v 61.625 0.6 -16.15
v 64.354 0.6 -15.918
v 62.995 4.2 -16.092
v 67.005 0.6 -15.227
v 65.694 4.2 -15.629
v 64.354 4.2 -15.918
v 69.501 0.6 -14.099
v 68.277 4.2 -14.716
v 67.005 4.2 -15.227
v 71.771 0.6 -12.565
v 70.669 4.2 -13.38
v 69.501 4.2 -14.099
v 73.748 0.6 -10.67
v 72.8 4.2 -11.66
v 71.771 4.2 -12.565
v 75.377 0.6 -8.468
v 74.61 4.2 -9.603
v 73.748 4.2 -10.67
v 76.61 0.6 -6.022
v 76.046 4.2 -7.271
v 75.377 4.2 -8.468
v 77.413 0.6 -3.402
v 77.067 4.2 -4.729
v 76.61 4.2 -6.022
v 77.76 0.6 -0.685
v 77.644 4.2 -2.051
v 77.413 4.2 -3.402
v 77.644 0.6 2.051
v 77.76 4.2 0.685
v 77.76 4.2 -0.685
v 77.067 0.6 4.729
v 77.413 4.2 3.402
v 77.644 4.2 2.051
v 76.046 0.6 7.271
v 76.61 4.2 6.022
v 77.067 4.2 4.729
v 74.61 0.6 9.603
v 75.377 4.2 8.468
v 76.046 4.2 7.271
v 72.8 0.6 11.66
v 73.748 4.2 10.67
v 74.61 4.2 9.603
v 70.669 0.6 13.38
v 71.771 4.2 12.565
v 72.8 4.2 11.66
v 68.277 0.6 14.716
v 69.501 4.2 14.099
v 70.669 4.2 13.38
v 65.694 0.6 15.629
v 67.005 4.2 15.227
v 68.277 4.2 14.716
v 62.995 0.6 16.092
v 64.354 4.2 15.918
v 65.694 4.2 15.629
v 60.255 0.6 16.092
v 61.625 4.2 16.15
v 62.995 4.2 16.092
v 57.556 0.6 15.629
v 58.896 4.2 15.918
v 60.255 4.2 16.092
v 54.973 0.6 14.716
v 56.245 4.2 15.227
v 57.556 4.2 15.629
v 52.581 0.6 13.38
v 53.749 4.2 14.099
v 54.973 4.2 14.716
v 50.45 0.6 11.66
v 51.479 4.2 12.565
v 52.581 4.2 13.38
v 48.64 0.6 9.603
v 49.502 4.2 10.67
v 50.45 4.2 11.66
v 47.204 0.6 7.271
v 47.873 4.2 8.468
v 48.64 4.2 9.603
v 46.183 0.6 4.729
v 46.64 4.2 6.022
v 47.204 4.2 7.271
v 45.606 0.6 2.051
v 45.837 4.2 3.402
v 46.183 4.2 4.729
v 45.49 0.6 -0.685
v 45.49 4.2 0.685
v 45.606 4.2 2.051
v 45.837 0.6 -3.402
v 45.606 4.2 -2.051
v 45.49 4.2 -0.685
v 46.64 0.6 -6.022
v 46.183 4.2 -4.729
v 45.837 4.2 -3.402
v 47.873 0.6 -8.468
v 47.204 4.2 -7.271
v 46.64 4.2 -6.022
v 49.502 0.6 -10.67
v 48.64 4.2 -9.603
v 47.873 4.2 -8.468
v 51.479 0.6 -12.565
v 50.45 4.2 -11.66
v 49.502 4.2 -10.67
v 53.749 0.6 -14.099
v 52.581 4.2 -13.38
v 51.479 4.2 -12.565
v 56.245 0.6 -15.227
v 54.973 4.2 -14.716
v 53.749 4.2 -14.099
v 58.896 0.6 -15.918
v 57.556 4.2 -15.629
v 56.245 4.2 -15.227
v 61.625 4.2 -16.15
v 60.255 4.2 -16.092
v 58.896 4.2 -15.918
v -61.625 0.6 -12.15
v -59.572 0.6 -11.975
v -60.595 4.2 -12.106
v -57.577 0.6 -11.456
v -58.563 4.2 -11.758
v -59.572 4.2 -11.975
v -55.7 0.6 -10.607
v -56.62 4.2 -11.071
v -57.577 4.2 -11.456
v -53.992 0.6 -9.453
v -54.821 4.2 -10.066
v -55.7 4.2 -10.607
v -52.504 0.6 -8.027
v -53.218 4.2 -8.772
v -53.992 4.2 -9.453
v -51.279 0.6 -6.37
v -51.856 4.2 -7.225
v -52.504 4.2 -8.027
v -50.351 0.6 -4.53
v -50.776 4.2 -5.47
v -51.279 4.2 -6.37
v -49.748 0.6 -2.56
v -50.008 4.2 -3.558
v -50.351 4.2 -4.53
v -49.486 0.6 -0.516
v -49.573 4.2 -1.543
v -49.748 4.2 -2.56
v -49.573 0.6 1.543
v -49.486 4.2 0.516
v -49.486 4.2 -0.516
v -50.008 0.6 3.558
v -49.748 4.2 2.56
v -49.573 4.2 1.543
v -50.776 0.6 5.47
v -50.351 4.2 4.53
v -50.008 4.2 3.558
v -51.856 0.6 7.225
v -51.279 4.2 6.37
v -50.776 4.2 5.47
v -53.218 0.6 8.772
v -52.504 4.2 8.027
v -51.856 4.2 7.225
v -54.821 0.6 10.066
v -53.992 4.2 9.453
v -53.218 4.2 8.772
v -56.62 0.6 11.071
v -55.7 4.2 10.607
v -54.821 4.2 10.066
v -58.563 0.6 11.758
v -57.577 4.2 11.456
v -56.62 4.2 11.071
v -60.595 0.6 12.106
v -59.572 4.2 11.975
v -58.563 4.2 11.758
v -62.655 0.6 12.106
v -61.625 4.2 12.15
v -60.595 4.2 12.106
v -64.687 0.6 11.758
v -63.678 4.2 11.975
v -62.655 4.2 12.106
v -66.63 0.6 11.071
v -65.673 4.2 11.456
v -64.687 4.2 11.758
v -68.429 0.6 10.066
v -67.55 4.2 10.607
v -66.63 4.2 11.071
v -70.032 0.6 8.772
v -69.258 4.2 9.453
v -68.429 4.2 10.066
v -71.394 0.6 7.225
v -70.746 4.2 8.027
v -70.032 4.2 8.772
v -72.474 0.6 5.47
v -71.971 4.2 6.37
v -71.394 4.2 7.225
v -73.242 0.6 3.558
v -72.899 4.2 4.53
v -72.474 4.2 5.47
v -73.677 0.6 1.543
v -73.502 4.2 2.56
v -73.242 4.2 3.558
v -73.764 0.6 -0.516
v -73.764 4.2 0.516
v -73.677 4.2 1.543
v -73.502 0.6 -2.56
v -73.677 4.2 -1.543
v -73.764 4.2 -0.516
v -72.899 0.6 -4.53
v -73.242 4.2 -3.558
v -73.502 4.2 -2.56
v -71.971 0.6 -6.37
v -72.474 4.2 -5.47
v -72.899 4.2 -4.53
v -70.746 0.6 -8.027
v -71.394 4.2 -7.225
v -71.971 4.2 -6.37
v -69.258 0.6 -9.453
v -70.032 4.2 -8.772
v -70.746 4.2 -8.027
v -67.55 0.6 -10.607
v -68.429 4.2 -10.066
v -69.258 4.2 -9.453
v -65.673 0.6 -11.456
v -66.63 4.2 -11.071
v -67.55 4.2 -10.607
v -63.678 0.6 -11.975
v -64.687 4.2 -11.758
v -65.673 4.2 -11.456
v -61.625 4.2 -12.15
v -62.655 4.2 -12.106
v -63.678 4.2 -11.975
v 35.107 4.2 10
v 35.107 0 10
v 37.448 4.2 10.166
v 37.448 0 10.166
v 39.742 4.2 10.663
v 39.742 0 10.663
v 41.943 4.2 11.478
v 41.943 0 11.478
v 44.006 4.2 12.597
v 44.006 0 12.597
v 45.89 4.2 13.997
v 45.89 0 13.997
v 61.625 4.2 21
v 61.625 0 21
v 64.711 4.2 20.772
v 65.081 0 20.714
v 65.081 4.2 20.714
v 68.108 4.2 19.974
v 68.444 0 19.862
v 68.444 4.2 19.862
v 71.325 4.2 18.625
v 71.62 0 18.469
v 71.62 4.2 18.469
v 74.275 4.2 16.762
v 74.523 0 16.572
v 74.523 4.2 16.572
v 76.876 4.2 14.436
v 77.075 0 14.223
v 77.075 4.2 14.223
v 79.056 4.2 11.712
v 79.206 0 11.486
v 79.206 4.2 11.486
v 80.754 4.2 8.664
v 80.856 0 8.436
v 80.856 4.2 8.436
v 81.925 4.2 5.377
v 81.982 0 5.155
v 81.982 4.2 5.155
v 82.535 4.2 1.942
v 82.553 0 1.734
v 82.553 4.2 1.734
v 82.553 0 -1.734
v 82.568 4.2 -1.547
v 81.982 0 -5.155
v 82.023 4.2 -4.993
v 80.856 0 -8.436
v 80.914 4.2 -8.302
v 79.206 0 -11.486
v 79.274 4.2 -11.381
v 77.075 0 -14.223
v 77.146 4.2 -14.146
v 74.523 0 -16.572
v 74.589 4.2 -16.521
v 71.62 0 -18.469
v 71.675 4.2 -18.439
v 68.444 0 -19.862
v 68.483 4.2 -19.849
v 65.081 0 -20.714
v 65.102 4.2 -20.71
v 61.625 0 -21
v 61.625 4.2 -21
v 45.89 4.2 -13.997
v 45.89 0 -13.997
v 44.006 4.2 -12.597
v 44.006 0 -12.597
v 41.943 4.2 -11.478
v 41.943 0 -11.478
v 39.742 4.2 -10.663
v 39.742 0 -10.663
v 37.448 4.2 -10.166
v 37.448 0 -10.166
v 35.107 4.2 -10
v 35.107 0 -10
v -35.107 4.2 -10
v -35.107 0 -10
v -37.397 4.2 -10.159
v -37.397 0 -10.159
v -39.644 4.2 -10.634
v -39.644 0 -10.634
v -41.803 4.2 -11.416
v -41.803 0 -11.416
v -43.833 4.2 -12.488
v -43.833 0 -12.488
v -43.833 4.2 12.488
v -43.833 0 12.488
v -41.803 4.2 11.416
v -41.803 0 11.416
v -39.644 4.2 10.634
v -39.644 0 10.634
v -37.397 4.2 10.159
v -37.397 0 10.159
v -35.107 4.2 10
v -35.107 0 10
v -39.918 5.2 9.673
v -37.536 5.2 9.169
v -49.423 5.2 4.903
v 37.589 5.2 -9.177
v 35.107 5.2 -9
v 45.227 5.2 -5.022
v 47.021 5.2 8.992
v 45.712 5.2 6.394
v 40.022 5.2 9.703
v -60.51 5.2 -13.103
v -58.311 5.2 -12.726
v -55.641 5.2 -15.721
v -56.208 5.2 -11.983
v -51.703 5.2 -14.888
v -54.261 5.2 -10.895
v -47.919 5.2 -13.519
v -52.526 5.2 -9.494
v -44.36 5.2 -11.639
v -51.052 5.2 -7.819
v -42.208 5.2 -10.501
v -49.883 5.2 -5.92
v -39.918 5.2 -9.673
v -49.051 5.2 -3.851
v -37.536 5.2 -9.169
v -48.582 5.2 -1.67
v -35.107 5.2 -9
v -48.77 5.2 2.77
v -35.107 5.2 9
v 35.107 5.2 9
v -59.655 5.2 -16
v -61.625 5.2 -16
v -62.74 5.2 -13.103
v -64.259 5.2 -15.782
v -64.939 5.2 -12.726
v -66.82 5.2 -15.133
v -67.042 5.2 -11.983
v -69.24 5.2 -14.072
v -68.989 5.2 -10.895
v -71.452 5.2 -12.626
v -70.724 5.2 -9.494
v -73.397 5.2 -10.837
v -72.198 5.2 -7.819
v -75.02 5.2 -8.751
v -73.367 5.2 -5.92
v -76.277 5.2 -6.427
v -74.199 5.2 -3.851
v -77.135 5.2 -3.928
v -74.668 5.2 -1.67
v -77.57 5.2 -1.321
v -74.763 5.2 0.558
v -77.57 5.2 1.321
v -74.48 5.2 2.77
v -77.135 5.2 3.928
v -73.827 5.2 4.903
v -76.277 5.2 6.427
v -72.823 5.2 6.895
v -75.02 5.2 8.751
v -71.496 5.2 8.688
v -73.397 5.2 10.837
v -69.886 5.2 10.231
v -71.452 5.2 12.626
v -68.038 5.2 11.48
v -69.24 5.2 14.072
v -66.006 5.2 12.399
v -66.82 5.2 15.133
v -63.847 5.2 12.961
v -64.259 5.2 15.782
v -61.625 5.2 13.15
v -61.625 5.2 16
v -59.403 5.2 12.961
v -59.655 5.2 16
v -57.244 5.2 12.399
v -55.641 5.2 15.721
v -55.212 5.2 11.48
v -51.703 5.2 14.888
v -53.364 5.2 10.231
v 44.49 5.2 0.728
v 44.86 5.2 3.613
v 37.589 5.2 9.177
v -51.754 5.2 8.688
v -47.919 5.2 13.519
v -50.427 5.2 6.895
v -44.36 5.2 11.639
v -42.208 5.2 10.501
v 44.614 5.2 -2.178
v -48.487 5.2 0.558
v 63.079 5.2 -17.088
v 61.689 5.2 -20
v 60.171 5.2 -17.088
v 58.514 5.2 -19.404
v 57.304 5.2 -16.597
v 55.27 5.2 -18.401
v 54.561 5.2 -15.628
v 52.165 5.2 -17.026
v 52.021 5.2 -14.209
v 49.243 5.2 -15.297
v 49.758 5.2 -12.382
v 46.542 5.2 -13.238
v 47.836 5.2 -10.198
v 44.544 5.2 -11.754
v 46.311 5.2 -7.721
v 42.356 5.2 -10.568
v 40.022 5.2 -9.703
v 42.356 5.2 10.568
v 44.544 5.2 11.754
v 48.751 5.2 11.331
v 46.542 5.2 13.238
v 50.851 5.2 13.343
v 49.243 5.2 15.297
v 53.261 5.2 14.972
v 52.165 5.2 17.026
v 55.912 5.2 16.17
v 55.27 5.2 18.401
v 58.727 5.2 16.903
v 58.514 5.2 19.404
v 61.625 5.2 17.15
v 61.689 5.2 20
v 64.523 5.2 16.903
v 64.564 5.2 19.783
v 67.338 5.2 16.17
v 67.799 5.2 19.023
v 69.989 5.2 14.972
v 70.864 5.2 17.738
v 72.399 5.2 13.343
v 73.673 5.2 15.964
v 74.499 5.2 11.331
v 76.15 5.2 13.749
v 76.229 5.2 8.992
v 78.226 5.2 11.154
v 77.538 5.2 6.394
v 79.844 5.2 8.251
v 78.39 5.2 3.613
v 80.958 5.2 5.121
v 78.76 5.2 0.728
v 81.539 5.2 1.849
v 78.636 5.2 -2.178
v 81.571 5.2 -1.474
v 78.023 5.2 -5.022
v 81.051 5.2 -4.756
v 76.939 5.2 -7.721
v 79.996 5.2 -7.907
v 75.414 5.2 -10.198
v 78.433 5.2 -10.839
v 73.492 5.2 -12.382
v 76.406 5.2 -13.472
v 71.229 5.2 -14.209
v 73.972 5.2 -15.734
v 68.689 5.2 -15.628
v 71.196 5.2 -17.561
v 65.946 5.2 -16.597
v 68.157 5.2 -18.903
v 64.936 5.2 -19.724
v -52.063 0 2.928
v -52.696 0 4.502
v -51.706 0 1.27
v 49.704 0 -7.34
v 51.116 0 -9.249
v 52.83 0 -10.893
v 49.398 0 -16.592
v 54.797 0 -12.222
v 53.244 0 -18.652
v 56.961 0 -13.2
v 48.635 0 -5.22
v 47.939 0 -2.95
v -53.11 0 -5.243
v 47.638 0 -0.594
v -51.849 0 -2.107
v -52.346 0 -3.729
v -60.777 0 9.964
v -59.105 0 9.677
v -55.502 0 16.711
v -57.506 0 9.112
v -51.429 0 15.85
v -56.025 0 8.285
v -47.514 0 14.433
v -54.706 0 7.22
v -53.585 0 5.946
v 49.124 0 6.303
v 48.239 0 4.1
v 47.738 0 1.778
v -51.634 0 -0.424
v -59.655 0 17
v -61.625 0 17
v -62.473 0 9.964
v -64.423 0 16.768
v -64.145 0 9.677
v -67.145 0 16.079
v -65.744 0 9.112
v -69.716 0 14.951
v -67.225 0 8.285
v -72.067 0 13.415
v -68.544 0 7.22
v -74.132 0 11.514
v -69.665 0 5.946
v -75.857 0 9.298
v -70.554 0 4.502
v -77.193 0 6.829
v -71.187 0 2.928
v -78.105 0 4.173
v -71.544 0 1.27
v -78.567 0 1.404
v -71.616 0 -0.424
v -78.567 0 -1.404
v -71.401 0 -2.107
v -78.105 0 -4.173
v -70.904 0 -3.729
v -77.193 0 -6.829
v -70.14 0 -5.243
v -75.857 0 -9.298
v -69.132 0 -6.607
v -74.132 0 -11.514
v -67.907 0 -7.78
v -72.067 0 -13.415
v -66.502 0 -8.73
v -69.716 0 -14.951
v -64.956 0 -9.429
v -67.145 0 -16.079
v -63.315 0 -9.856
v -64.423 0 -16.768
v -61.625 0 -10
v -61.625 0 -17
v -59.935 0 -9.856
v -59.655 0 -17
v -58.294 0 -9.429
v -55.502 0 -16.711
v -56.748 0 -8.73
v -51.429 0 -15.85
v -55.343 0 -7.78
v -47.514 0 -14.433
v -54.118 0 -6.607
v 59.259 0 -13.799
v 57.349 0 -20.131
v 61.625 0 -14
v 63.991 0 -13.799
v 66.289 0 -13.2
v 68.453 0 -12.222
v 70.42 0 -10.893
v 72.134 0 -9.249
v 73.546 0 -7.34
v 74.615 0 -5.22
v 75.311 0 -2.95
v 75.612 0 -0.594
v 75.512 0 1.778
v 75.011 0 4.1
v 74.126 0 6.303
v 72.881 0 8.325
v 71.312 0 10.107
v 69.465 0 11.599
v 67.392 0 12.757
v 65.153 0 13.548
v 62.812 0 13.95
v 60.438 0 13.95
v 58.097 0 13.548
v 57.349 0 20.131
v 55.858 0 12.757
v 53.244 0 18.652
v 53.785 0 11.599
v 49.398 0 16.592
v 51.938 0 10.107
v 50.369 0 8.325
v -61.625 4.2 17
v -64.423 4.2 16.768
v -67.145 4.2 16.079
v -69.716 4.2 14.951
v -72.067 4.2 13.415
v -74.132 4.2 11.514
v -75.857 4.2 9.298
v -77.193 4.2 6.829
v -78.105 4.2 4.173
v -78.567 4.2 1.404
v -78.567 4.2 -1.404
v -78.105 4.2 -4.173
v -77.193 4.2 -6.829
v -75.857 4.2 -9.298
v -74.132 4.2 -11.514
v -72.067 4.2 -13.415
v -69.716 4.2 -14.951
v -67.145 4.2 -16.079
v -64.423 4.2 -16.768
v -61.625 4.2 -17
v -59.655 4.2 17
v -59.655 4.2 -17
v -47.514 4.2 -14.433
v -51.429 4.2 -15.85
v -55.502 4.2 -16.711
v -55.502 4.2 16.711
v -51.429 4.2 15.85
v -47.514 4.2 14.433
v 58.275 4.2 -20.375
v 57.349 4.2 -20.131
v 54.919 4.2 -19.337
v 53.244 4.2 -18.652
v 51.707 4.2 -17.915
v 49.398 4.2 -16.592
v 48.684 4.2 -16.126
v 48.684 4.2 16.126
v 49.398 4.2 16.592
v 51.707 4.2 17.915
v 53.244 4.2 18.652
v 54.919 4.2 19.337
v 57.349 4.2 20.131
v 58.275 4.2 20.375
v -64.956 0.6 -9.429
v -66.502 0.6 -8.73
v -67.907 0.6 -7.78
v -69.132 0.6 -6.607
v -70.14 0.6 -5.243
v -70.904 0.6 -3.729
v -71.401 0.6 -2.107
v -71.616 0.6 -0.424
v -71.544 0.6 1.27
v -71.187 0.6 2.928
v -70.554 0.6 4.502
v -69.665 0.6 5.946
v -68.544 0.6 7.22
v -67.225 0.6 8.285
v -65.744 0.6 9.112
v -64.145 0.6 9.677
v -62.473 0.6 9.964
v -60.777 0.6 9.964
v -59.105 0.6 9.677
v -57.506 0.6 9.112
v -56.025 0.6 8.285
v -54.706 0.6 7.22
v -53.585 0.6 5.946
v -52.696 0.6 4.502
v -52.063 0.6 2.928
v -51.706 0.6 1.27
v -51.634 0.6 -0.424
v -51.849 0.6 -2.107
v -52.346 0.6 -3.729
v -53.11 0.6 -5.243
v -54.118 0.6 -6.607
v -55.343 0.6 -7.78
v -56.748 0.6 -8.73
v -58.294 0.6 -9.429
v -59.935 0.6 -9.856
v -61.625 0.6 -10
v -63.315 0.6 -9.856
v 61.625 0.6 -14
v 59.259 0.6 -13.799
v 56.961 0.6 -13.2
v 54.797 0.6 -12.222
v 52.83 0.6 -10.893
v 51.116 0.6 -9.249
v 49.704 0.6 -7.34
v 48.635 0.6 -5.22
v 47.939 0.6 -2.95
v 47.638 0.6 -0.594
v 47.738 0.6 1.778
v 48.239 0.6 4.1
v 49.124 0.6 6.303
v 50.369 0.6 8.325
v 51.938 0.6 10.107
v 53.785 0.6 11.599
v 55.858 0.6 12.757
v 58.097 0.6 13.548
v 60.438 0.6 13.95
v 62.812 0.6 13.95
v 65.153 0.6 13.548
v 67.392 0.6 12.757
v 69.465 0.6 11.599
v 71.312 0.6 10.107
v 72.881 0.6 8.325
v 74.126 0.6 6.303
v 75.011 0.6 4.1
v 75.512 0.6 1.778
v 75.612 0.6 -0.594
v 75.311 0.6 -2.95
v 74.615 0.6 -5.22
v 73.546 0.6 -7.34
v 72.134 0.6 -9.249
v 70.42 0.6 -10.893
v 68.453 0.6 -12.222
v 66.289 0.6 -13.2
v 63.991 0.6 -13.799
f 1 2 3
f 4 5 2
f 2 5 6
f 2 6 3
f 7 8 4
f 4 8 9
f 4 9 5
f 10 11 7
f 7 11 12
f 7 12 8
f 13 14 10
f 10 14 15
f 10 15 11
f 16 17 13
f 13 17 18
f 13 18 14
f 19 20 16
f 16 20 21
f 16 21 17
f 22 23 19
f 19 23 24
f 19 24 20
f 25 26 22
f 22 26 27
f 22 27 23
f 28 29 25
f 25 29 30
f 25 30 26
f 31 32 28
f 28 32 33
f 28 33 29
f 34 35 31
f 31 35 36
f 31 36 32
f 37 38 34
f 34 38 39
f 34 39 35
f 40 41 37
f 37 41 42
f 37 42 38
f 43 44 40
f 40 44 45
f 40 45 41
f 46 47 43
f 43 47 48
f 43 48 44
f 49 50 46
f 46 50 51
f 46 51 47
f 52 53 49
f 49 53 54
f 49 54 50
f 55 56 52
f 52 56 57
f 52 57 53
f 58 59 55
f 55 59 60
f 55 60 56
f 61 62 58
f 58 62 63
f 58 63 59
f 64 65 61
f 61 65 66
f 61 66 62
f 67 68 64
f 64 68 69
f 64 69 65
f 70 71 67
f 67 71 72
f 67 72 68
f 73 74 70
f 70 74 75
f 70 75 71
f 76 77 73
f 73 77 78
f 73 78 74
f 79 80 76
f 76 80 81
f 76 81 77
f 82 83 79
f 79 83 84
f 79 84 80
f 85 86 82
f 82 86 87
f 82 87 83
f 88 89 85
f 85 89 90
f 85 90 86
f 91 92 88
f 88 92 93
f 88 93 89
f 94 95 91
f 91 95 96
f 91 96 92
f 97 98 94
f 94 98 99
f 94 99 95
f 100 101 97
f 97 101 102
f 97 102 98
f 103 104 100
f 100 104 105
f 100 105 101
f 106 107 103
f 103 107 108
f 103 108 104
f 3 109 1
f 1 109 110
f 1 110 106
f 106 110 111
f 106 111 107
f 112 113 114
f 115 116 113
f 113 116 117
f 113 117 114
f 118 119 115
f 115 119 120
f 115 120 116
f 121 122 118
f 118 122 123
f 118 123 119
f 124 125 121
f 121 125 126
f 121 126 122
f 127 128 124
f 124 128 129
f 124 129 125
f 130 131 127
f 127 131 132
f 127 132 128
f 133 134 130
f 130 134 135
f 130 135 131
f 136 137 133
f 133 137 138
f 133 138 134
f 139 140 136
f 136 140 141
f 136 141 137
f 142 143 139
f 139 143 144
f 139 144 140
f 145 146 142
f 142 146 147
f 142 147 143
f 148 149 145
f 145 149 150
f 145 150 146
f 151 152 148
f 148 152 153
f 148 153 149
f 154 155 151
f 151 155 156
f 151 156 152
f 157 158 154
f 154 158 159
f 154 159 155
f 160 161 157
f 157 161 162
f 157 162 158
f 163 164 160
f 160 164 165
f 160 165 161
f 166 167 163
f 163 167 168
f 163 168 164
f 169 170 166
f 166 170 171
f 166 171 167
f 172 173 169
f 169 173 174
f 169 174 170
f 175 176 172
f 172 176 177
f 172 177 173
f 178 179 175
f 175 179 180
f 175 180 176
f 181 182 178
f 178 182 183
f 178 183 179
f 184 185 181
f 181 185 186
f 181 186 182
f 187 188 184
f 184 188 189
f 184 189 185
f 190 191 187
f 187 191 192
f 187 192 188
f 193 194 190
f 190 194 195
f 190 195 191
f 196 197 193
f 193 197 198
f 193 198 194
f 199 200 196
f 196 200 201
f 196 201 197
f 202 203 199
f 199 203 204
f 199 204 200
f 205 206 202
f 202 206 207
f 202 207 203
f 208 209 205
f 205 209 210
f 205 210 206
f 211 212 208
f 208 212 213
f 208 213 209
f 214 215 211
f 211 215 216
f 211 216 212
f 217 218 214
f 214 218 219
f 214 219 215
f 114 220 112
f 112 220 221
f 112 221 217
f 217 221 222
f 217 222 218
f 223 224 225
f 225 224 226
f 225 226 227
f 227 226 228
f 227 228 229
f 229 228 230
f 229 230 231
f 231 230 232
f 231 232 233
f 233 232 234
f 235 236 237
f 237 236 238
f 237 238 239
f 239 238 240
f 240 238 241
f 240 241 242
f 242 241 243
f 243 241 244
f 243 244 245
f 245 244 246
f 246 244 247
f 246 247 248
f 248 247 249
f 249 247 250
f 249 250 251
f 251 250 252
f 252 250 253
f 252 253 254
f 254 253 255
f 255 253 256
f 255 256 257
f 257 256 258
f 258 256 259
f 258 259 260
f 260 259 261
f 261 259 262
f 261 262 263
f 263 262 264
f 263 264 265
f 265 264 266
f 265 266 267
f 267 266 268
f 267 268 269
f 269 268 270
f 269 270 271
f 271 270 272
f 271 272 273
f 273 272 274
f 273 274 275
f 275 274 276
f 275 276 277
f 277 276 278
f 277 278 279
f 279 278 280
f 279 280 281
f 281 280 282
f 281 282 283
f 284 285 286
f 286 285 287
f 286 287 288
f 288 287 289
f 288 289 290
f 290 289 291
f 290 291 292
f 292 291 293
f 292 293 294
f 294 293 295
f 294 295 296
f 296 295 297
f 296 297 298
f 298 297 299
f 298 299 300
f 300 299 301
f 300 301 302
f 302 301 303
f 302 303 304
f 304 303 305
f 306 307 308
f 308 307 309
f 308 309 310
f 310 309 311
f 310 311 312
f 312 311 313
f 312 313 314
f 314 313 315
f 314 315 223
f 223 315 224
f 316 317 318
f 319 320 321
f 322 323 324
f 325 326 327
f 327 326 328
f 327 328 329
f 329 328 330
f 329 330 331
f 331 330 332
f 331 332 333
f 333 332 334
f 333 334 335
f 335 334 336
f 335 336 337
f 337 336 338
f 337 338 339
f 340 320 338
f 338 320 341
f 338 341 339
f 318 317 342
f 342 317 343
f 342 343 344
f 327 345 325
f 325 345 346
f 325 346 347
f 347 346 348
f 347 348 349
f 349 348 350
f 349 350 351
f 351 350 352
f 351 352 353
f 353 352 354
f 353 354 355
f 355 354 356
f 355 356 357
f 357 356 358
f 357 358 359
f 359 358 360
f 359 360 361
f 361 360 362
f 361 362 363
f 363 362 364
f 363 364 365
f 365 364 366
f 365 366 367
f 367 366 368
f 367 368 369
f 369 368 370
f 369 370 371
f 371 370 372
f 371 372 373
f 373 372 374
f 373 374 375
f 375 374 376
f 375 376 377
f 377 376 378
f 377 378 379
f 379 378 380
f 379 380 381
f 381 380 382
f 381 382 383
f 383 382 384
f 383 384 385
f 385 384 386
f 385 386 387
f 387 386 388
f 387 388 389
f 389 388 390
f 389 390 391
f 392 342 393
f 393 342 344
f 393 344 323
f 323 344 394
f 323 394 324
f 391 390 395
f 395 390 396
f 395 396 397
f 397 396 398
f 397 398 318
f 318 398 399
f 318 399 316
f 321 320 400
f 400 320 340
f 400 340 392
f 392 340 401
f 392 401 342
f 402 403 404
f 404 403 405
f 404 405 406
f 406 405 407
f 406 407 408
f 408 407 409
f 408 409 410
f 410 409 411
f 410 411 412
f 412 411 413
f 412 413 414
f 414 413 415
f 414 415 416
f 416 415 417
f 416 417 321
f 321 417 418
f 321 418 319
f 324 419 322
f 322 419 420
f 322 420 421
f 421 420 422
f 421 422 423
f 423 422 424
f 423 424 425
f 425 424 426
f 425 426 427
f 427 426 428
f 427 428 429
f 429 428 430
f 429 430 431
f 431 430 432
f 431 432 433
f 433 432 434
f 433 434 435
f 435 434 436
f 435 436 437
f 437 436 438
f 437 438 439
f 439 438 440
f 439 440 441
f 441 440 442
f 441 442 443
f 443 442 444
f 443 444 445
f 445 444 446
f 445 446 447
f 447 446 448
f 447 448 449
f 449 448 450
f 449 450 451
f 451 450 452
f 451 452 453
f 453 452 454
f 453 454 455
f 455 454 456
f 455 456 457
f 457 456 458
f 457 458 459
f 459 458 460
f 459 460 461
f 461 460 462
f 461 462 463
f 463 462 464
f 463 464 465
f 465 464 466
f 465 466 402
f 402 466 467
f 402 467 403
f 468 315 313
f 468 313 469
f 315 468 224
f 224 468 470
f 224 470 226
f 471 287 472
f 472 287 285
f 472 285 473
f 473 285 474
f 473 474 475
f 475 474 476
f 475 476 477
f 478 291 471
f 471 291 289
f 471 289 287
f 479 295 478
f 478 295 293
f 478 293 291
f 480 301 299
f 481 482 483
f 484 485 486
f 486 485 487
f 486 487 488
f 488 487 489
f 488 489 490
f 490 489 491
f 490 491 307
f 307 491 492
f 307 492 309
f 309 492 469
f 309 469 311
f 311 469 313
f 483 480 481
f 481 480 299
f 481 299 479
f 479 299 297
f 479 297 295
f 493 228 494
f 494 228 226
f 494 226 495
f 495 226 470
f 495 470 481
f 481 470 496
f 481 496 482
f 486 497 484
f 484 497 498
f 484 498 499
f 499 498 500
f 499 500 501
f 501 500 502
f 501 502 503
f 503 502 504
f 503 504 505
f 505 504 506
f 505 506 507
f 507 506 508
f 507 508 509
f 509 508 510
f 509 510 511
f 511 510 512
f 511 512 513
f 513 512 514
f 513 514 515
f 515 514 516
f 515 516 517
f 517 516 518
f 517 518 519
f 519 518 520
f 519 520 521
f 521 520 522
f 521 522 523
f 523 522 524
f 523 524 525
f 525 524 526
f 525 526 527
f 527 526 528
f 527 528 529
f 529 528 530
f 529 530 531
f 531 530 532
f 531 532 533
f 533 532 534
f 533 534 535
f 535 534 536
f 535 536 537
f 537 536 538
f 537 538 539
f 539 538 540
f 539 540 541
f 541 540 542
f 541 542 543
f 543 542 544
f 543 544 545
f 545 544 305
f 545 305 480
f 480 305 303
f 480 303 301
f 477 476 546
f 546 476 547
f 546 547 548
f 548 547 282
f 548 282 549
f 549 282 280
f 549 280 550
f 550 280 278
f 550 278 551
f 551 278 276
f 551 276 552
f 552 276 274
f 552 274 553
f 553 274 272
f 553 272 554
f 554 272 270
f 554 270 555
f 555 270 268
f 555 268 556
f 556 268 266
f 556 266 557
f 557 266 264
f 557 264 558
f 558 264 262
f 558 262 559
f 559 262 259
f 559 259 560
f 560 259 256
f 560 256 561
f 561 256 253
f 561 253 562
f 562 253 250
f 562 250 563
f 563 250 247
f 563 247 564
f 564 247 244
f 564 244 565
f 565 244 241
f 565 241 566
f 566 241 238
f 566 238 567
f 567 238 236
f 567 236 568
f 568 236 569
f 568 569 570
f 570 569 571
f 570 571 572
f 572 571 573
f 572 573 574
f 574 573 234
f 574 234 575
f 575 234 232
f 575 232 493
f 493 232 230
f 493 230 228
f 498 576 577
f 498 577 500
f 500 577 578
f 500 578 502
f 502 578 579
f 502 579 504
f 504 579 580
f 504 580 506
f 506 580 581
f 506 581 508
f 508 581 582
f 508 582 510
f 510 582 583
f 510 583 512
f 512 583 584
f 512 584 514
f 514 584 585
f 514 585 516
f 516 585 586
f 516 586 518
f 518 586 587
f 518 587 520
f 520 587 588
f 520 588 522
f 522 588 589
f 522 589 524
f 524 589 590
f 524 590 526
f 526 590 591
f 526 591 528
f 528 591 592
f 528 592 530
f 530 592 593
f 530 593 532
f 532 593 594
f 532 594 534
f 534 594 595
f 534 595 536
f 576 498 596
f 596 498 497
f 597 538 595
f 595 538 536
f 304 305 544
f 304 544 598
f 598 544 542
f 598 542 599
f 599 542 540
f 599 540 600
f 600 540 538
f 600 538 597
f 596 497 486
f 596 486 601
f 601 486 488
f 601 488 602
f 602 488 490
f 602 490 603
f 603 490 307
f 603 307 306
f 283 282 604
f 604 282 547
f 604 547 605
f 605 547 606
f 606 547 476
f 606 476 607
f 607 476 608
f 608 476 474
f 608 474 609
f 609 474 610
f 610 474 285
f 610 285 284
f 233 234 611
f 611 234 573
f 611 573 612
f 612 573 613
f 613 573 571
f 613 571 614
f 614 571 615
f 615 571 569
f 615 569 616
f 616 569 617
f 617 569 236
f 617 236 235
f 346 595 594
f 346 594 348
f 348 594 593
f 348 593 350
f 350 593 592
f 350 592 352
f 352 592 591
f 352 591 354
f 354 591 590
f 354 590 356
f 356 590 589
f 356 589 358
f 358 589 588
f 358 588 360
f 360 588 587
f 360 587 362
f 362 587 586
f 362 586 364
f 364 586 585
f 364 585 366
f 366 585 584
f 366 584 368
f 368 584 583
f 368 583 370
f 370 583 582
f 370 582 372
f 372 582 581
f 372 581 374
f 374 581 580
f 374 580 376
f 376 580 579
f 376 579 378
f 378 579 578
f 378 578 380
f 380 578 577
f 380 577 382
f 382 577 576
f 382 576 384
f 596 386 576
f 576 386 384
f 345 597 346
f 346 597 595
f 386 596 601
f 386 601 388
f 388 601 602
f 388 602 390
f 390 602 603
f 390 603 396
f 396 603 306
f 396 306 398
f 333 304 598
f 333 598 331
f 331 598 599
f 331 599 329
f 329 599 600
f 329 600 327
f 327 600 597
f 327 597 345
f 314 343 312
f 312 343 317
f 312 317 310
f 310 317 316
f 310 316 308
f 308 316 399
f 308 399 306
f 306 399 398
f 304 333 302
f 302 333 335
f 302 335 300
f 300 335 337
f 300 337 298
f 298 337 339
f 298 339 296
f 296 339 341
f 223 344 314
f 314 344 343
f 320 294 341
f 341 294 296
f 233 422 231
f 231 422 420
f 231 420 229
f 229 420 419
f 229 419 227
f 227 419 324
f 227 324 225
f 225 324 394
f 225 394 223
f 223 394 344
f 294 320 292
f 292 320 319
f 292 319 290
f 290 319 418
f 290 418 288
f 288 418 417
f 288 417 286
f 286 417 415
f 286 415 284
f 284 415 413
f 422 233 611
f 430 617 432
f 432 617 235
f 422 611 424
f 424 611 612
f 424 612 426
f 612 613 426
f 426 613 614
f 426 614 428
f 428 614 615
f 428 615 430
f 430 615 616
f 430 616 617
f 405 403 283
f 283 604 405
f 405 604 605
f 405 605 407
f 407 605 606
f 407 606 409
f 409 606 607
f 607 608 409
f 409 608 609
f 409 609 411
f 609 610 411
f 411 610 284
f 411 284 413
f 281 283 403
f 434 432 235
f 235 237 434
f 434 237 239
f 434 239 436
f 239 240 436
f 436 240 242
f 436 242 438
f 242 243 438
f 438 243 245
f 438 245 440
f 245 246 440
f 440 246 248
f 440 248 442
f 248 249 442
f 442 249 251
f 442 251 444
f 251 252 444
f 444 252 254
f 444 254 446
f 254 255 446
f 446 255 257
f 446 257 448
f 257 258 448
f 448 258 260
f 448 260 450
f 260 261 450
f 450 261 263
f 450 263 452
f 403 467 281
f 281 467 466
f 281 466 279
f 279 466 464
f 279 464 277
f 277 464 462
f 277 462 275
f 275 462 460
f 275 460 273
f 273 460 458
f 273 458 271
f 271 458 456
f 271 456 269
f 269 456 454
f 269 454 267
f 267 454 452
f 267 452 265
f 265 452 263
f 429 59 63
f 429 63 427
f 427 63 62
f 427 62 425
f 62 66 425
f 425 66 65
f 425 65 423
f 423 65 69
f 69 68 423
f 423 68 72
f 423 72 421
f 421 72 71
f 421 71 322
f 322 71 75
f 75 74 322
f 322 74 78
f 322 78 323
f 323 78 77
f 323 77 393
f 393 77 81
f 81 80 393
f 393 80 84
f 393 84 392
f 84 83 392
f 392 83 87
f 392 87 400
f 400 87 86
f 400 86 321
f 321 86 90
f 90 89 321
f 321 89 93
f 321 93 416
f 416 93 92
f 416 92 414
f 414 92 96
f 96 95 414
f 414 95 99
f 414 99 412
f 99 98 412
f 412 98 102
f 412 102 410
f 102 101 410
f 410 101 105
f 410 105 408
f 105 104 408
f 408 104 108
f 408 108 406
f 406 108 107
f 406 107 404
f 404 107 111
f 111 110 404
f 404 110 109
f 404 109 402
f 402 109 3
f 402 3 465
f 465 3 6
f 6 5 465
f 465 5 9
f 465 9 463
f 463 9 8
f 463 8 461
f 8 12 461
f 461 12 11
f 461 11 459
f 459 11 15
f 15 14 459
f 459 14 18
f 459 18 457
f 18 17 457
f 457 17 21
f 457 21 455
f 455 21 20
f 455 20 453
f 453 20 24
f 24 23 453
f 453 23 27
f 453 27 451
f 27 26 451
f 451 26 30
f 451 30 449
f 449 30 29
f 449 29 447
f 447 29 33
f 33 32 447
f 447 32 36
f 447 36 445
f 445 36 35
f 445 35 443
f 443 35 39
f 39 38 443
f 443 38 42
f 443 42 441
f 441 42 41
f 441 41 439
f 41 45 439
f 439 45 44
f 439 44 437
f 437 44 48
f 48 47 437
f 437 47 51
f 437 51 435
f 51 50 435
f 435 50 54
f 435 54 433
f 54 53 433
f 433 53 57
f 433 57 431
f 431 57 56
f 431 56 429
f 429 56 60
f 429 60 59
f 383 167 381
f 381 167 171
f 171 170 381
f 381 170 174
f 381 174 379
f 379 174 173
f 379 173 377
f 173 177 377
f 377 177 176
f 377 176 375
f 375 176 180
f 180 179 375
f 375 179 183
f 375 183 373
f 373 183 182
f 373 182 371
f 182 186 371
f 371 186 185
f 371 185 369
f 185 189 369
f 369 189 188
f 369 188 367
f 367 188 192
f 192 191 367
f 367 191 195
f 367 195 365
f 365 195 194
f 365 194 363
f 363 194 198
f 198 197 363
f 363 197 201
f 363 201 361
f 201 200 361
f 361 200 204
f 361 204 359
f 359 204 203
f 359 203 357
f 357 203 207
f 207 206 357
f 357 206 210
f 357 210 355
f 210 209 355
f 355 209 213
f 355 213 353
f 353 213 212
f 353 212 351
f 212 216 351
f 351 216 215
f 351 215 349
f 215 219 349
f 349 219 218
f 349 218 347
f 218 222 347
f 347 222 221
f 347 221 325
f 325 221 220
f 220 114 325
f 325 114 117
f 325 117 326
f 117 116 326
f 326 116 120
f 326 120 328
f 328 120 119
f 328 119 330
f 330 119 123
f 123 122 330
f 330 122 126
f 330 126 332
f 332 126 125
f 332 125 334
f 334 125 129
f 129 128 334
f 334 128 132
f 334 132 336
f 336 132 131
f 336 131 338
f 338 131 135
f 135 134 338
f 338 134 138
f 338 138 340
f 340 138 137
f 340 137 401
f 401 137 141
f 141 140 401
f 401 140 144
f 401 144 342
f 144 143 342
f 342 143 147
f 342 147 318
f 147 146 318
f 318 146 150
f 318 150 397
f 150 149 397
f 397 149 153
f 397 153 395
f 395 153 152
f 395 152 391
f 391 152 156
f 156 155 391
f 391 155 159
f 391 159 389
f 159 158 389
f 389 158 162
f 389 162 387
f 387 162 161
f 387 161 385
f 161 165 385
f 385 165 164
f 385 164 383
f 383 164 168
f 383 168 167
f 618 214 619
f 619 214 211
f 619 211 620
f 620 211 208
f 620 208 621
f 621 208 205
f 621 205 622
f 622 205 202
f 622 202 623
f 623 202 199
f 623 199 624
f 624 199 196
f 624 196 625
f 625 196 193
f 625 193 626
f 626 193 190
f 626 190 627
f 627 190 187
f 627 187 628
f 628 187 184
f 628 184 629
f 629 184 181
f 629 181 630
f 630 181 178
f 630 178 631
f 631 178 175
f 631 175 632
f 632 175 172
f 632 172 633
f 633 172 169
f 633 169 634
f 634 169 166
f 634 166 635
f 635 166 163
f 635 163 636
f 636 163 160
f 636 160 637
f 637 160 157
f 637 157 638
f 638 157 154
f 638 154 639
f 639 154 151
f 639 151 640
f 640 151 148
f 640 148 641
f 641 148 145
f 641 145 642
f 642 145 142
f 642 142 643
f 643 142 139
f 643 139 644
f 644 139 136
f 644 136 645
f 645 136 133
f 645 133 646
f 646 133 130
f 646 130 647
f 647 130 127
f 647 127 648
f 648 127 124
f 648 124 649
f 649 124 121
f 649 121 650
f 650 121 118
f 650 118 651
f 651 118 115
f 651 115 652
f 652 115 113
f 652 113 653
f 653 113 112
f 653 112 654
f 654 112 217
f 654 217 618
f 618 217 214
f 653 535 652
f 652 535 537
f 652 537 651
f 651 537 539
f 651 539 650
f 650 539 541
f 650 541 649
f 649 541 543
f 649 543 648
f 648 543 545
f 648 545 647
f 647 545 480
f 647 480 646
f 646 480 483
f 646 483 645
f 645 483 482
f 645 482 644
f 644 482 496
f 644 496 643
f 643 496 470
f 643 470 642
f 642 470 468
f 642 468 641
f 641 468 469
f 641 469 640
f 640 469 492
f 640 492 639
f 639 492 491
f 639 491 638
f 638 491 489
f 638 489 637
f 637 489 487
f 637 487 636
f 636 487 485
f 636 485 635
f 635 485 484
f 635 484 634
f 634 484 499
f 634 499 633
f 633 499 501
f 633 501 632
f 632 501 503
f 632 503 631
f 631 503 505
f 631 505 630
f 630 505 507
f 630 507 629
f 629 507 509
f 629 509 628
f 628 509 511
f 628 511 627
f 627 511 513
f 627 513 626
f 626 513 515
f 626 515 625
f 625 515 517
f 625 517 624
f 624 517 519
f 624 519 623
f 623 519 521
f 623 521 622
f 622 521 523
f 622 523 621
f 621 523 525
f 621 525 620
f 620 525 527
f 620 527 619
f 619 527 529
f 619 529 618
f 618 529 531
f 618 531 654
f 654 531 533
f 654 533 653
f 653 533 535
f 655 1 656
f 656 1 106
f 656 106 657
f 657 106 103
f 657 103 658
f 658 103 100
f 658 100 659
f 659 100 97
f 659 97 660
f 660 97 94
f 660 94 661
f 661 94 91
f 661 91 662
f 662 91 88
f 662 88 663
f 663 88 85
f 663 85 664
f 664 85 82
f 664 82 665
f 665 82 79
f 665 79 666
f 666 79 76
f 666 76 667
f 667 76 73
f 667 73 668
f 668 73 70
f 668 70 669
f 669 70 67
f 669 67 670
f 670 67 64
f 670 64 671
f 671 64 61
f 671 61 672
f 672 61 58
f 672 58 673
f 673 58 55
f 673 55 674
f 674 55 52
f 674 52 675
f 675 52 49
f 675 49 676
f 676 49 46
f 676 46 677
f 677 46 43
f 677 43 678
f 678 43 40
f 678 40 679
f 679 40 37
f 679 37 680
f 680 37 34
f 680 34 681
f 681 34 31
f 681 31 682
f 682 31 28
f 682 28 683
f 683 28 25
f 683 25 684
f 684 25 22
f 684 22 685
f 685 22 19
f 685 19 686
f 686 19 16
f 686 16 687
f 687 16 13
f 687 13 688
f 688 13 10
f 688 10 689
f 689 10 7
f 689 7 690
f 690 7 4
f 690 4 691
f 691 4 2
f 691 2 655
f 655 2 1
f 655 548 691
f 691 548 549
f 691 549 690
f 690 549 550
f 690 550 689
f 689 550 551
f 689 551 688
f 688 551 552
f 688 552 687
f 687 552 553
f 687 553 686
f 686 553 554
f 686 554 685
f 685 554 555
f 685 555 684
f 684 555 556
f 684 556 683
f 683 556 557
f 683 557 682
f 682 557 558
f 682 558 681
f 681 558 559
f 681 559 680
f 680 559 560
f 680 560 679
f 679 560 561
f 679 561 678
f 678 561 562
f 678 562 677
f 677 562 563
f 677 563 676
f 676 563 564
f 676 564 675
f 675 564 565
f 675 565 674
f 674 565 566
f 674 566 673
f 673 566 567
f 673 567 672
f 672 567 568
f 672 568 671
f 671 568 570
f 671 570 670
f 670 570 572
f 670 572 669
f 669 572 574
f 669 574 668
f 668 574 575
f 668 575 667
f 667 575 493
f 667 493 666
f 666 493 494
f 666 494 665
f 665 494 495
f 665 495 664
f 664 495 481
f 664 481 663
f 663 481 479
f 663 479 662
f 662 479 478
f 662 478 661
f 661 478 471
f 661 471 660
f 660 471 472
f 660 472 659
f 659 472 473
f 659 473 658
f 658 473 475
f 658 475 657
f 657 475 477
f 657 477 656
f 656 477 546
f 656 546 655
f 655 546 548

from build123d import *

# Parameters (mm, degrees)
SKETCH1_R           = 12.15
SKETCH1_R_2         = 16.15
BOSS_EXTRUDE1_DEPTH = 5.2
CUT_EXTRUDE1_DEPTH  = 86.410366028
FILLET1_R           = 30
CHAMFER1_SIZE       = 1
SKETCH2_R           = 14.75534968
SKETCH2_R_2         = 10
SKETCH2_R_3         = 19.025242353
SKETCH2_R_4         = 14
BOSS_EXTRUDE2_DEPTH = 0.6


with BuildPart() as part:
    # Sketch1 → Boss-Extrude1 (new body)
    with BuildSketch(Plane(origin=(0, 0, 0), x_dir=(1, 0, 0), z_dir=(0, 1, 0))):
        with BuildLine():
            Line((50.6952797, -21), (61.625, -21))
            ThreePointArc((61.625, -21), (82.625, 0), (61.625, 21))
            Line((61.625, 21), (50.6952797, 21))
            ThreePointArc((50.6952797, 21), (44.646090821, 13.026866227), (35.106613419, 10))
            Line((35.106613419, 10), (-35.106613419, 10))
            ThreePointArc((-35.106613419, 10), (-44.646090821, 13.026866227), (-50.6952797, 21))
            Line((-50.6952797, 21), (-61.625, 21))
            ThreePointArc((-61.625, 21), (-82.625, 0), (-61.625, -21))
            Line((-61.625, -21), (-50.6952797, -21))
            ThreePointArc((-50.6952797, -21), (-44.646090821, -13.026866227), (-35.106613419, -10))
            Line((-35.106613419, -10), (35.106613419, -10))
            ThreePointArc((35.106613419, -10), (44.646090821, -13.026866227), (50.6952797, -21))
        make_face()
        with Locations(Location((-61.625, 0, 0), (0, 0, 270))):
            Circle(SKETCH1_R, mode=Mode.SUBTRACT)
        with Locations(Location((61.625, 0, 0), (0, 0, 270))):
            Circle(SKETCH1_R_2, mode=Mode.SUBTRACT)
    extrude(amount=BOSS_EXTRUDE1_DEPTH)

    # Sketch4 → Cut-Extrude1 (cut, through all)
    with BuildSketch(Plane(origin=(0, 5.2, 0), x_dir=(1, 0, 0), z_dir=(0, 1, 0))):
        with BuildLine():
            Line((-61.625, 17), (-38.970543198, 17))
            Line((-38.970543198, 17), (-43.407950199, 33.342917206))
            Line((-43.407950199, 33.342917206), (-92.984497382, 23.090976894))
            Line((-92.984497382, 23.090976894), (-92.984497382, -9.501012459))
            Line((-92.984497382, -9.501012459), (-86.710921967, -27.097626428))
            Line((-86.710921967, -27.097626428), (-50.736883487, -31.973137348))
            Line((-50.736883487, -31.973137348), (-37.899444956, -29.584754809))
            Line((-37.899444956, -29.584754809), (-38.970543198, -17))
            Line((-38.970543198, -17), (-61.625, -17))
            ThreePointArc((-61.625, -17), (-78.625, 0), (-61.625, 17))
        make_face()
    extrude(amount=-CUT_EXTRUDE1_DEPTH, mode=Mode.SUBTRACT)

    # Fillet1
    # the kernel refuses this fillet: 30 mm, written as the material it takes off along each edge
    with BuildSketch(Plane(origin=(50.6952797, -27.324300751, -21), x_dir=(-0.5657553203908781, 0, 0.824573172889717), z_dir=(0, 1, 0))) as fillet1_piece_1:
        with BuildLine():
            CenterArc((16.192535549, 28.995119506), FILLET1_R, 221.766169003, 33.362358022)
            Line((-6.18354741, 9.012354147), (-6.631069069, 8.61269884))
            ThreePointArc((-6.631069069, 8.61269884), (-3.586517609, 4.166723881), (-0.494743904, -0.339453192))
            Line((-0.494743904, -0.339453192), (0.153990967, -0.57990239))
            ThreePointArc((0.153990967, -0.57990239), (4.246493598, -0.04578326), (8.338996228, -0.57990239))
            Line((8.338996228, -0.57990239), (8.492987195, 0))
        make_face()
    extrude(amount=59.848601502, mode=Mode.SUBTRACT)
    with BuildSketch(Plane(origin=(50.6952797, -27.324300751, 21), x_dir=(1, 0, 0), z_dir=(0, 1, 0))) as fillet1_piece_2:
        with BuildLine():
            CenterArc((14.747584551, 29.756073541), FILLET1_R, 229.326231532, 33.362358022)
            Line((-4.804952692, 7.003089399), (-5.196003436, 6.548029716))
            ThreePointArc((-5.196003436, 6.548029716), (-2.440227994, 3.475642576), (-0.565293163, -0.201106042))
            Line((-0.565293163, -0.201106042), (0, -0.6))
            ThreePointArc((0, -0.6), (5.46486015, -0.6), (10.853363015, -0.595121471))
            Line((10.853363015, -0.595121471), (10.9297203, 0))
        make_face()
    extrude(amount=59.848601502, mode=Mode.SUBTRACT)
    with BuildSketch(Plane(origin=(-48.621069029, 32.785704602, -17), x_dir=(-1, 0, 0), z_dir=(0, -1, 0))) as fillet1_piece_3:
        with BuildLine():
            CenterArc((11.034281841, -30), FILLET1_R, 90, 31.830687787)
            Line((-4.788045906, -4.511690039), (-5.104492461, -4.00192384))
            ThreePointArc((-5.104492461, -4.00192384), (-2.578998673, -2.059538928), (-0.490075881, 0.34615839))
            Line((-0.490075881, 0.34615839), (0, 0.6))
            Line((0, 0.6), (11.034281841, 0.6))
            Line((11.034281841, 0.6), (11.034281841, 0))
        make_face()
    extrude(amount=60.371409204, mode=Mode.SUBTRACT)
    with BuildSketch(Plane(origin=(-48.621069029, 32.785704602, 17), x_dir=(0.7277982616759969, 0, -0.6857912877117915), z_dir=(0, -1, 0))) as fillet1_piece_4:
        with BuildLine():
            CenterArc((12.543007489, -29.401162203), FILLET1_R, 101.467181472, 31.830687787)
            Line((-8.030731143, -7.567214353), (-8.442205915, -7.130535396))
            Line((-8.442205915, -7.130535396), (-0.411474773, 0.436678957))
            Line((-0.411474773, 0.436678957), (0.119283966, 0.588023244))
            ThreePointArc((0.119283966, 0.588023244), (3.289404605, 0.269725969), (6.459525243, 0.588023244))
            Line((6.459525243, 0.588023244), (6.578809209, 0))
        make_face()
    extrude(amount=60.371409204, mode=Mode.SUBTRACT)

    # Chamfer1
    # the kernel refuses this chamfer: 1 mm, written as the material it takes off along each edge
    with BuildSketch(Plane(origin=(61.625, 5.2, 0), x_dir=(-0.12235070165055927, 0, 0.9924869297908239), z_dir=(-0.9924869297908239, 0, -0.12235070165055927))) as chamfer1_piece_1:
        Polygon((21 - CHAMFER1_SIZE, 0), (21, -CHAMFER1_SIZE), (21, 0), align=None)
    revolve(axis=Axis((61.625, 5.2, 0), (0, 1, 0)), revolution_arc=194.055575488, mode=Mode.SUBTRACT)
    with BuildSketch(Plane(origin=(35.106613419, 5.2, -26.545750746), x_dir=(0.6517512414299695, 0, 0.7584328047325575), z_dir=(0.7584328047325575, 0, -0.6517512414299695))) as chamfer1_piece_2:
        Polygon((16.545750746 + CHAMFER1_SIZE, 0), (16.545750746, CHAMFER1_SIZE), (16.545750746, 0), align=None)
    revolve(axis=Axis((35.106613419, 5.2, -26.545750746), (0, -1, 0)), revolution_arc=40.673768468, mode=Mode.SUBTRACT)
    with BuildSketch(Plane(origin=(35.106613419, 5.2, -10), x_dir=(0, 0, 1), z_dir=(-1, 0, 0))) as chamfer1_piece_3:
        Polygon((CHAMFER1_SIZE, 0), (0, -CHAMFER1_SIZE), (0, 0), align=None)
    extrude(amount=70.213226838, mode=Mode.SUBTRACT)
    with BuildSketch(Plane(origin=(-61.625, 5.2, 0), x_dir=(0, 0, 1), z_dir=(1, 0, 0))) as chamfer1_piece_4:
        Polygon((17 - CHAMFER1_SIZE, 0), (17, CHAMFER1_SIZE), (17, 0), align=None)
    revolve(axis=Axis((-61.625, 5.2, 0), (0, -1, 0)), revolution_arc=180, mode=Mode.SUBTRACT)
    with BuildSketch(Plane(origin=(-61.625, 5.2, -17), x_dir=(0, 0, 1), z_dir=(1, 0, 0)), Plane(origin=(-59.65535087, 5.2, 17), x_dir=(0, 0, -1), z_dir=(-1, 0, 0))) as chamfer1_piece_5:
        Polygon((CHAMFER1_SIZE, 0), (0, CHAMFER1_SIZE), (0, 0), align=None)
    extrude(amount=1.96964913, mode=Mode.SUBTRACT)
    with BuildSketch(Plane(origin=(-35.106613419, 5.2, 26.545750746), x_dir=(-0.5274109249013418, 0, -0.8496103320315208), z_dir=(-0.8496103320315208, 0, 0.5274109249013418))) as chamfer1_piece_6:
        Polygon((16.545750746, CHAMFER1_SIZE), (16.545750746 + CHAMFER1_SIZE, 0), (16.545750746, 0), align=None)
    revolve(axis=Axis((-35.106613419, 5.2, 26.545750746), (0, -1, 0)), revolution_arc=31.830687787, mode=Mode.SUBTRACT)
    with BuildSketch(Plane(origin=(-35.106613419, 5.2, 10), x_dir=(0, -1, 0), z_dir=(1, 0, 0))) as chamfer1_piece_7:
        Polygon((CHAMFER1_SIZE, 0), (0, CHAMFER1_SIZE), (0, 0), align=None)
    extrude(amount=70.213226838, mode=Mode.SUBTRACT)
    with BuildSketch(Plane(origin=(-61.625, 5.2, 0), x_dir=(0, 0, 1), z_dir=(-1, 0, 0))) as chamfer1_piece_8:
        Polygon((12.15 + CHAMFER1_SIZE, 0), (12.15, -CHAMFER1_SIZE), (12.15, 0), align=None)
    revolve(axis=Axis((-61.625, 5.2, 0), (0, 1, 0)), mode=Mode.SUBTRACT)
    with BuildSketch(Plane(origin=(61.625, 5.2, 0), x_dir=(0, 0, 1), z_dir=(-1, 0, 0))) as chamfer1_piece_9:
        Polygon((16.15 + CHAMFER1_SIZE, 0), (16.15, -CHAMFER1_SIZE), (16.15, 0), align=None)
    revolve(axis=Axis((61.625, 5.2, 0), (0, 1, 0)), mode=Mode.SUBTRACT)
    with BuildSketch(Plane(origin=(-35.106613419, 5.2, -26.545750746), x_dir=(0, 0, 1), z_dir=(1, 0, 0))) as chamfer1_piece_10:
        Polygon((16.545750746 + CHAMFER1_SIZE, 0), (16.545750746, CHAMFER1_SIZE), (16.545750746, 0), align=None)
    revolve(axis=Axis((-35.106613419, 5.2, -26.545750746), (0, -1, 0)), revolution_arc=31.830687787, mode=Mode.SUBTRACT)
    with BuildSketch(Plane(origin=(35.106613419, 5.2, 26.545750746), x_dir=(0, 0, -1), z_dir=(-1, 0, 0))) as chamfer1_piece_11:
        Polygon((16.545750746 + CHAMFER1_SIZE, 0), (16.545750746, CHAMFER1_SIZE), (16.545750746, 0), align=None)
    revolve(axis=Axis((35.106613419, 5.2, 26.545750746), (0, -1, 0)), revolution_arc=40.673768468, mode=Mode.SUBTRACT)
    with BuildSketch(Plane(origin=(65.442864251, 5.2, -8.756073541), x_dir=(0.1292120287500912, 0, 0.9916169883711581), z_dir=(0.9916169883711581, 0, -0.1292120287500912))) as chamfer1_piece_12:
        Polygon((30 - CHAMFER1_SIZE, 0), (30, CHAMFER1_SIZE), (30, 0), align=None)
    revolve(axis=Axis((65.442864251, 5.2, -8.756073541), (0, -1, 0)), revolution_arc=48.097829324, mode=Mode.SUBTRACT)
    with BuildSketch(Plane(origin=(65.442864251, 5.2, 8.756073541), x_dir=(-0.6517512414300072, 0, -0.7584328047325251), z_dir=(-0.7584328047325251, 0, 0.6517512414300072))) as chamfer1_piece_13:
        Polygon((30 - CHAMFER1_SIZE, 0), (30, CHAMFER1_SIZE), (30, 0), align=None)
    revolve(axis=Axis((65.442864251, 5.2, 8.756073541), (0, -1, 0)), revolution_arc=48.097829324, mode=Mode.SUBTRACT)
    with BuildSketch(Plane(origin=(-59.65535087, 5.2, -13), x_dir=(0, 0, 1), z_dir=(-1, 0, 0))) as chamfer1_piece_14:
        Polygon((30 - CHAMFER1_SIZE, 0), (30, -CHAMFER1_SIZE), (30, 0), align=None)
    revolve(axis=Axis((-59.65535087, 5.2, -13), (0, 1, 0)), revolution_arc=31.830687787, mode=Mode.SUBTRACT)
    with BuildSketch(Plane(origin=(-59.65535087, 5.2, 13), x_dir=(0.5274109249013516, 0, -0.8496103320315149), z_dir=(0.8496103320315149, 0, 0.5274109249013516))) as chamfer1_piece_15:
        Polygon((30 - CHAMFER1_SIZE, 0), (30, -CHAMFER1_SIZE), (30, 0), align=None)
    revolve(axis=Axis((-59.65535087, 5.2, 13), (0, 1, 0)), revolution_arc=31.830687787, mode=Mode.SUBTRACT)

    # Sketch2 → Boss-Extrude2 (add)
    # profile 1 of 2: a face of its own
    with BuildSketch(Plane.XZ):
        with Locations((-61.625, 0)):
            Circle(SKETCH2_R)
        with Locations(Location((-61.625, 0, 0), (0, 0, 270))):
            Circle(SKETCH2_R_2, mode=Mode.SUBTRACT)
    # profile 2 of 2: a face of its own
    with BuildSketch(Plane.XZ):
        with Locations((61.625, 0)):
            Circle(SKETCH2_R_3)
        with Locations(Location((61.625, 0, 0), (0, 0, 270))):
            Circle(SKETCH2_R_4, mode=Mode.SUBTRACT)
    extrude(amount=-BOSS_EXTRUDE2_DEPTH)


solid = part.part
